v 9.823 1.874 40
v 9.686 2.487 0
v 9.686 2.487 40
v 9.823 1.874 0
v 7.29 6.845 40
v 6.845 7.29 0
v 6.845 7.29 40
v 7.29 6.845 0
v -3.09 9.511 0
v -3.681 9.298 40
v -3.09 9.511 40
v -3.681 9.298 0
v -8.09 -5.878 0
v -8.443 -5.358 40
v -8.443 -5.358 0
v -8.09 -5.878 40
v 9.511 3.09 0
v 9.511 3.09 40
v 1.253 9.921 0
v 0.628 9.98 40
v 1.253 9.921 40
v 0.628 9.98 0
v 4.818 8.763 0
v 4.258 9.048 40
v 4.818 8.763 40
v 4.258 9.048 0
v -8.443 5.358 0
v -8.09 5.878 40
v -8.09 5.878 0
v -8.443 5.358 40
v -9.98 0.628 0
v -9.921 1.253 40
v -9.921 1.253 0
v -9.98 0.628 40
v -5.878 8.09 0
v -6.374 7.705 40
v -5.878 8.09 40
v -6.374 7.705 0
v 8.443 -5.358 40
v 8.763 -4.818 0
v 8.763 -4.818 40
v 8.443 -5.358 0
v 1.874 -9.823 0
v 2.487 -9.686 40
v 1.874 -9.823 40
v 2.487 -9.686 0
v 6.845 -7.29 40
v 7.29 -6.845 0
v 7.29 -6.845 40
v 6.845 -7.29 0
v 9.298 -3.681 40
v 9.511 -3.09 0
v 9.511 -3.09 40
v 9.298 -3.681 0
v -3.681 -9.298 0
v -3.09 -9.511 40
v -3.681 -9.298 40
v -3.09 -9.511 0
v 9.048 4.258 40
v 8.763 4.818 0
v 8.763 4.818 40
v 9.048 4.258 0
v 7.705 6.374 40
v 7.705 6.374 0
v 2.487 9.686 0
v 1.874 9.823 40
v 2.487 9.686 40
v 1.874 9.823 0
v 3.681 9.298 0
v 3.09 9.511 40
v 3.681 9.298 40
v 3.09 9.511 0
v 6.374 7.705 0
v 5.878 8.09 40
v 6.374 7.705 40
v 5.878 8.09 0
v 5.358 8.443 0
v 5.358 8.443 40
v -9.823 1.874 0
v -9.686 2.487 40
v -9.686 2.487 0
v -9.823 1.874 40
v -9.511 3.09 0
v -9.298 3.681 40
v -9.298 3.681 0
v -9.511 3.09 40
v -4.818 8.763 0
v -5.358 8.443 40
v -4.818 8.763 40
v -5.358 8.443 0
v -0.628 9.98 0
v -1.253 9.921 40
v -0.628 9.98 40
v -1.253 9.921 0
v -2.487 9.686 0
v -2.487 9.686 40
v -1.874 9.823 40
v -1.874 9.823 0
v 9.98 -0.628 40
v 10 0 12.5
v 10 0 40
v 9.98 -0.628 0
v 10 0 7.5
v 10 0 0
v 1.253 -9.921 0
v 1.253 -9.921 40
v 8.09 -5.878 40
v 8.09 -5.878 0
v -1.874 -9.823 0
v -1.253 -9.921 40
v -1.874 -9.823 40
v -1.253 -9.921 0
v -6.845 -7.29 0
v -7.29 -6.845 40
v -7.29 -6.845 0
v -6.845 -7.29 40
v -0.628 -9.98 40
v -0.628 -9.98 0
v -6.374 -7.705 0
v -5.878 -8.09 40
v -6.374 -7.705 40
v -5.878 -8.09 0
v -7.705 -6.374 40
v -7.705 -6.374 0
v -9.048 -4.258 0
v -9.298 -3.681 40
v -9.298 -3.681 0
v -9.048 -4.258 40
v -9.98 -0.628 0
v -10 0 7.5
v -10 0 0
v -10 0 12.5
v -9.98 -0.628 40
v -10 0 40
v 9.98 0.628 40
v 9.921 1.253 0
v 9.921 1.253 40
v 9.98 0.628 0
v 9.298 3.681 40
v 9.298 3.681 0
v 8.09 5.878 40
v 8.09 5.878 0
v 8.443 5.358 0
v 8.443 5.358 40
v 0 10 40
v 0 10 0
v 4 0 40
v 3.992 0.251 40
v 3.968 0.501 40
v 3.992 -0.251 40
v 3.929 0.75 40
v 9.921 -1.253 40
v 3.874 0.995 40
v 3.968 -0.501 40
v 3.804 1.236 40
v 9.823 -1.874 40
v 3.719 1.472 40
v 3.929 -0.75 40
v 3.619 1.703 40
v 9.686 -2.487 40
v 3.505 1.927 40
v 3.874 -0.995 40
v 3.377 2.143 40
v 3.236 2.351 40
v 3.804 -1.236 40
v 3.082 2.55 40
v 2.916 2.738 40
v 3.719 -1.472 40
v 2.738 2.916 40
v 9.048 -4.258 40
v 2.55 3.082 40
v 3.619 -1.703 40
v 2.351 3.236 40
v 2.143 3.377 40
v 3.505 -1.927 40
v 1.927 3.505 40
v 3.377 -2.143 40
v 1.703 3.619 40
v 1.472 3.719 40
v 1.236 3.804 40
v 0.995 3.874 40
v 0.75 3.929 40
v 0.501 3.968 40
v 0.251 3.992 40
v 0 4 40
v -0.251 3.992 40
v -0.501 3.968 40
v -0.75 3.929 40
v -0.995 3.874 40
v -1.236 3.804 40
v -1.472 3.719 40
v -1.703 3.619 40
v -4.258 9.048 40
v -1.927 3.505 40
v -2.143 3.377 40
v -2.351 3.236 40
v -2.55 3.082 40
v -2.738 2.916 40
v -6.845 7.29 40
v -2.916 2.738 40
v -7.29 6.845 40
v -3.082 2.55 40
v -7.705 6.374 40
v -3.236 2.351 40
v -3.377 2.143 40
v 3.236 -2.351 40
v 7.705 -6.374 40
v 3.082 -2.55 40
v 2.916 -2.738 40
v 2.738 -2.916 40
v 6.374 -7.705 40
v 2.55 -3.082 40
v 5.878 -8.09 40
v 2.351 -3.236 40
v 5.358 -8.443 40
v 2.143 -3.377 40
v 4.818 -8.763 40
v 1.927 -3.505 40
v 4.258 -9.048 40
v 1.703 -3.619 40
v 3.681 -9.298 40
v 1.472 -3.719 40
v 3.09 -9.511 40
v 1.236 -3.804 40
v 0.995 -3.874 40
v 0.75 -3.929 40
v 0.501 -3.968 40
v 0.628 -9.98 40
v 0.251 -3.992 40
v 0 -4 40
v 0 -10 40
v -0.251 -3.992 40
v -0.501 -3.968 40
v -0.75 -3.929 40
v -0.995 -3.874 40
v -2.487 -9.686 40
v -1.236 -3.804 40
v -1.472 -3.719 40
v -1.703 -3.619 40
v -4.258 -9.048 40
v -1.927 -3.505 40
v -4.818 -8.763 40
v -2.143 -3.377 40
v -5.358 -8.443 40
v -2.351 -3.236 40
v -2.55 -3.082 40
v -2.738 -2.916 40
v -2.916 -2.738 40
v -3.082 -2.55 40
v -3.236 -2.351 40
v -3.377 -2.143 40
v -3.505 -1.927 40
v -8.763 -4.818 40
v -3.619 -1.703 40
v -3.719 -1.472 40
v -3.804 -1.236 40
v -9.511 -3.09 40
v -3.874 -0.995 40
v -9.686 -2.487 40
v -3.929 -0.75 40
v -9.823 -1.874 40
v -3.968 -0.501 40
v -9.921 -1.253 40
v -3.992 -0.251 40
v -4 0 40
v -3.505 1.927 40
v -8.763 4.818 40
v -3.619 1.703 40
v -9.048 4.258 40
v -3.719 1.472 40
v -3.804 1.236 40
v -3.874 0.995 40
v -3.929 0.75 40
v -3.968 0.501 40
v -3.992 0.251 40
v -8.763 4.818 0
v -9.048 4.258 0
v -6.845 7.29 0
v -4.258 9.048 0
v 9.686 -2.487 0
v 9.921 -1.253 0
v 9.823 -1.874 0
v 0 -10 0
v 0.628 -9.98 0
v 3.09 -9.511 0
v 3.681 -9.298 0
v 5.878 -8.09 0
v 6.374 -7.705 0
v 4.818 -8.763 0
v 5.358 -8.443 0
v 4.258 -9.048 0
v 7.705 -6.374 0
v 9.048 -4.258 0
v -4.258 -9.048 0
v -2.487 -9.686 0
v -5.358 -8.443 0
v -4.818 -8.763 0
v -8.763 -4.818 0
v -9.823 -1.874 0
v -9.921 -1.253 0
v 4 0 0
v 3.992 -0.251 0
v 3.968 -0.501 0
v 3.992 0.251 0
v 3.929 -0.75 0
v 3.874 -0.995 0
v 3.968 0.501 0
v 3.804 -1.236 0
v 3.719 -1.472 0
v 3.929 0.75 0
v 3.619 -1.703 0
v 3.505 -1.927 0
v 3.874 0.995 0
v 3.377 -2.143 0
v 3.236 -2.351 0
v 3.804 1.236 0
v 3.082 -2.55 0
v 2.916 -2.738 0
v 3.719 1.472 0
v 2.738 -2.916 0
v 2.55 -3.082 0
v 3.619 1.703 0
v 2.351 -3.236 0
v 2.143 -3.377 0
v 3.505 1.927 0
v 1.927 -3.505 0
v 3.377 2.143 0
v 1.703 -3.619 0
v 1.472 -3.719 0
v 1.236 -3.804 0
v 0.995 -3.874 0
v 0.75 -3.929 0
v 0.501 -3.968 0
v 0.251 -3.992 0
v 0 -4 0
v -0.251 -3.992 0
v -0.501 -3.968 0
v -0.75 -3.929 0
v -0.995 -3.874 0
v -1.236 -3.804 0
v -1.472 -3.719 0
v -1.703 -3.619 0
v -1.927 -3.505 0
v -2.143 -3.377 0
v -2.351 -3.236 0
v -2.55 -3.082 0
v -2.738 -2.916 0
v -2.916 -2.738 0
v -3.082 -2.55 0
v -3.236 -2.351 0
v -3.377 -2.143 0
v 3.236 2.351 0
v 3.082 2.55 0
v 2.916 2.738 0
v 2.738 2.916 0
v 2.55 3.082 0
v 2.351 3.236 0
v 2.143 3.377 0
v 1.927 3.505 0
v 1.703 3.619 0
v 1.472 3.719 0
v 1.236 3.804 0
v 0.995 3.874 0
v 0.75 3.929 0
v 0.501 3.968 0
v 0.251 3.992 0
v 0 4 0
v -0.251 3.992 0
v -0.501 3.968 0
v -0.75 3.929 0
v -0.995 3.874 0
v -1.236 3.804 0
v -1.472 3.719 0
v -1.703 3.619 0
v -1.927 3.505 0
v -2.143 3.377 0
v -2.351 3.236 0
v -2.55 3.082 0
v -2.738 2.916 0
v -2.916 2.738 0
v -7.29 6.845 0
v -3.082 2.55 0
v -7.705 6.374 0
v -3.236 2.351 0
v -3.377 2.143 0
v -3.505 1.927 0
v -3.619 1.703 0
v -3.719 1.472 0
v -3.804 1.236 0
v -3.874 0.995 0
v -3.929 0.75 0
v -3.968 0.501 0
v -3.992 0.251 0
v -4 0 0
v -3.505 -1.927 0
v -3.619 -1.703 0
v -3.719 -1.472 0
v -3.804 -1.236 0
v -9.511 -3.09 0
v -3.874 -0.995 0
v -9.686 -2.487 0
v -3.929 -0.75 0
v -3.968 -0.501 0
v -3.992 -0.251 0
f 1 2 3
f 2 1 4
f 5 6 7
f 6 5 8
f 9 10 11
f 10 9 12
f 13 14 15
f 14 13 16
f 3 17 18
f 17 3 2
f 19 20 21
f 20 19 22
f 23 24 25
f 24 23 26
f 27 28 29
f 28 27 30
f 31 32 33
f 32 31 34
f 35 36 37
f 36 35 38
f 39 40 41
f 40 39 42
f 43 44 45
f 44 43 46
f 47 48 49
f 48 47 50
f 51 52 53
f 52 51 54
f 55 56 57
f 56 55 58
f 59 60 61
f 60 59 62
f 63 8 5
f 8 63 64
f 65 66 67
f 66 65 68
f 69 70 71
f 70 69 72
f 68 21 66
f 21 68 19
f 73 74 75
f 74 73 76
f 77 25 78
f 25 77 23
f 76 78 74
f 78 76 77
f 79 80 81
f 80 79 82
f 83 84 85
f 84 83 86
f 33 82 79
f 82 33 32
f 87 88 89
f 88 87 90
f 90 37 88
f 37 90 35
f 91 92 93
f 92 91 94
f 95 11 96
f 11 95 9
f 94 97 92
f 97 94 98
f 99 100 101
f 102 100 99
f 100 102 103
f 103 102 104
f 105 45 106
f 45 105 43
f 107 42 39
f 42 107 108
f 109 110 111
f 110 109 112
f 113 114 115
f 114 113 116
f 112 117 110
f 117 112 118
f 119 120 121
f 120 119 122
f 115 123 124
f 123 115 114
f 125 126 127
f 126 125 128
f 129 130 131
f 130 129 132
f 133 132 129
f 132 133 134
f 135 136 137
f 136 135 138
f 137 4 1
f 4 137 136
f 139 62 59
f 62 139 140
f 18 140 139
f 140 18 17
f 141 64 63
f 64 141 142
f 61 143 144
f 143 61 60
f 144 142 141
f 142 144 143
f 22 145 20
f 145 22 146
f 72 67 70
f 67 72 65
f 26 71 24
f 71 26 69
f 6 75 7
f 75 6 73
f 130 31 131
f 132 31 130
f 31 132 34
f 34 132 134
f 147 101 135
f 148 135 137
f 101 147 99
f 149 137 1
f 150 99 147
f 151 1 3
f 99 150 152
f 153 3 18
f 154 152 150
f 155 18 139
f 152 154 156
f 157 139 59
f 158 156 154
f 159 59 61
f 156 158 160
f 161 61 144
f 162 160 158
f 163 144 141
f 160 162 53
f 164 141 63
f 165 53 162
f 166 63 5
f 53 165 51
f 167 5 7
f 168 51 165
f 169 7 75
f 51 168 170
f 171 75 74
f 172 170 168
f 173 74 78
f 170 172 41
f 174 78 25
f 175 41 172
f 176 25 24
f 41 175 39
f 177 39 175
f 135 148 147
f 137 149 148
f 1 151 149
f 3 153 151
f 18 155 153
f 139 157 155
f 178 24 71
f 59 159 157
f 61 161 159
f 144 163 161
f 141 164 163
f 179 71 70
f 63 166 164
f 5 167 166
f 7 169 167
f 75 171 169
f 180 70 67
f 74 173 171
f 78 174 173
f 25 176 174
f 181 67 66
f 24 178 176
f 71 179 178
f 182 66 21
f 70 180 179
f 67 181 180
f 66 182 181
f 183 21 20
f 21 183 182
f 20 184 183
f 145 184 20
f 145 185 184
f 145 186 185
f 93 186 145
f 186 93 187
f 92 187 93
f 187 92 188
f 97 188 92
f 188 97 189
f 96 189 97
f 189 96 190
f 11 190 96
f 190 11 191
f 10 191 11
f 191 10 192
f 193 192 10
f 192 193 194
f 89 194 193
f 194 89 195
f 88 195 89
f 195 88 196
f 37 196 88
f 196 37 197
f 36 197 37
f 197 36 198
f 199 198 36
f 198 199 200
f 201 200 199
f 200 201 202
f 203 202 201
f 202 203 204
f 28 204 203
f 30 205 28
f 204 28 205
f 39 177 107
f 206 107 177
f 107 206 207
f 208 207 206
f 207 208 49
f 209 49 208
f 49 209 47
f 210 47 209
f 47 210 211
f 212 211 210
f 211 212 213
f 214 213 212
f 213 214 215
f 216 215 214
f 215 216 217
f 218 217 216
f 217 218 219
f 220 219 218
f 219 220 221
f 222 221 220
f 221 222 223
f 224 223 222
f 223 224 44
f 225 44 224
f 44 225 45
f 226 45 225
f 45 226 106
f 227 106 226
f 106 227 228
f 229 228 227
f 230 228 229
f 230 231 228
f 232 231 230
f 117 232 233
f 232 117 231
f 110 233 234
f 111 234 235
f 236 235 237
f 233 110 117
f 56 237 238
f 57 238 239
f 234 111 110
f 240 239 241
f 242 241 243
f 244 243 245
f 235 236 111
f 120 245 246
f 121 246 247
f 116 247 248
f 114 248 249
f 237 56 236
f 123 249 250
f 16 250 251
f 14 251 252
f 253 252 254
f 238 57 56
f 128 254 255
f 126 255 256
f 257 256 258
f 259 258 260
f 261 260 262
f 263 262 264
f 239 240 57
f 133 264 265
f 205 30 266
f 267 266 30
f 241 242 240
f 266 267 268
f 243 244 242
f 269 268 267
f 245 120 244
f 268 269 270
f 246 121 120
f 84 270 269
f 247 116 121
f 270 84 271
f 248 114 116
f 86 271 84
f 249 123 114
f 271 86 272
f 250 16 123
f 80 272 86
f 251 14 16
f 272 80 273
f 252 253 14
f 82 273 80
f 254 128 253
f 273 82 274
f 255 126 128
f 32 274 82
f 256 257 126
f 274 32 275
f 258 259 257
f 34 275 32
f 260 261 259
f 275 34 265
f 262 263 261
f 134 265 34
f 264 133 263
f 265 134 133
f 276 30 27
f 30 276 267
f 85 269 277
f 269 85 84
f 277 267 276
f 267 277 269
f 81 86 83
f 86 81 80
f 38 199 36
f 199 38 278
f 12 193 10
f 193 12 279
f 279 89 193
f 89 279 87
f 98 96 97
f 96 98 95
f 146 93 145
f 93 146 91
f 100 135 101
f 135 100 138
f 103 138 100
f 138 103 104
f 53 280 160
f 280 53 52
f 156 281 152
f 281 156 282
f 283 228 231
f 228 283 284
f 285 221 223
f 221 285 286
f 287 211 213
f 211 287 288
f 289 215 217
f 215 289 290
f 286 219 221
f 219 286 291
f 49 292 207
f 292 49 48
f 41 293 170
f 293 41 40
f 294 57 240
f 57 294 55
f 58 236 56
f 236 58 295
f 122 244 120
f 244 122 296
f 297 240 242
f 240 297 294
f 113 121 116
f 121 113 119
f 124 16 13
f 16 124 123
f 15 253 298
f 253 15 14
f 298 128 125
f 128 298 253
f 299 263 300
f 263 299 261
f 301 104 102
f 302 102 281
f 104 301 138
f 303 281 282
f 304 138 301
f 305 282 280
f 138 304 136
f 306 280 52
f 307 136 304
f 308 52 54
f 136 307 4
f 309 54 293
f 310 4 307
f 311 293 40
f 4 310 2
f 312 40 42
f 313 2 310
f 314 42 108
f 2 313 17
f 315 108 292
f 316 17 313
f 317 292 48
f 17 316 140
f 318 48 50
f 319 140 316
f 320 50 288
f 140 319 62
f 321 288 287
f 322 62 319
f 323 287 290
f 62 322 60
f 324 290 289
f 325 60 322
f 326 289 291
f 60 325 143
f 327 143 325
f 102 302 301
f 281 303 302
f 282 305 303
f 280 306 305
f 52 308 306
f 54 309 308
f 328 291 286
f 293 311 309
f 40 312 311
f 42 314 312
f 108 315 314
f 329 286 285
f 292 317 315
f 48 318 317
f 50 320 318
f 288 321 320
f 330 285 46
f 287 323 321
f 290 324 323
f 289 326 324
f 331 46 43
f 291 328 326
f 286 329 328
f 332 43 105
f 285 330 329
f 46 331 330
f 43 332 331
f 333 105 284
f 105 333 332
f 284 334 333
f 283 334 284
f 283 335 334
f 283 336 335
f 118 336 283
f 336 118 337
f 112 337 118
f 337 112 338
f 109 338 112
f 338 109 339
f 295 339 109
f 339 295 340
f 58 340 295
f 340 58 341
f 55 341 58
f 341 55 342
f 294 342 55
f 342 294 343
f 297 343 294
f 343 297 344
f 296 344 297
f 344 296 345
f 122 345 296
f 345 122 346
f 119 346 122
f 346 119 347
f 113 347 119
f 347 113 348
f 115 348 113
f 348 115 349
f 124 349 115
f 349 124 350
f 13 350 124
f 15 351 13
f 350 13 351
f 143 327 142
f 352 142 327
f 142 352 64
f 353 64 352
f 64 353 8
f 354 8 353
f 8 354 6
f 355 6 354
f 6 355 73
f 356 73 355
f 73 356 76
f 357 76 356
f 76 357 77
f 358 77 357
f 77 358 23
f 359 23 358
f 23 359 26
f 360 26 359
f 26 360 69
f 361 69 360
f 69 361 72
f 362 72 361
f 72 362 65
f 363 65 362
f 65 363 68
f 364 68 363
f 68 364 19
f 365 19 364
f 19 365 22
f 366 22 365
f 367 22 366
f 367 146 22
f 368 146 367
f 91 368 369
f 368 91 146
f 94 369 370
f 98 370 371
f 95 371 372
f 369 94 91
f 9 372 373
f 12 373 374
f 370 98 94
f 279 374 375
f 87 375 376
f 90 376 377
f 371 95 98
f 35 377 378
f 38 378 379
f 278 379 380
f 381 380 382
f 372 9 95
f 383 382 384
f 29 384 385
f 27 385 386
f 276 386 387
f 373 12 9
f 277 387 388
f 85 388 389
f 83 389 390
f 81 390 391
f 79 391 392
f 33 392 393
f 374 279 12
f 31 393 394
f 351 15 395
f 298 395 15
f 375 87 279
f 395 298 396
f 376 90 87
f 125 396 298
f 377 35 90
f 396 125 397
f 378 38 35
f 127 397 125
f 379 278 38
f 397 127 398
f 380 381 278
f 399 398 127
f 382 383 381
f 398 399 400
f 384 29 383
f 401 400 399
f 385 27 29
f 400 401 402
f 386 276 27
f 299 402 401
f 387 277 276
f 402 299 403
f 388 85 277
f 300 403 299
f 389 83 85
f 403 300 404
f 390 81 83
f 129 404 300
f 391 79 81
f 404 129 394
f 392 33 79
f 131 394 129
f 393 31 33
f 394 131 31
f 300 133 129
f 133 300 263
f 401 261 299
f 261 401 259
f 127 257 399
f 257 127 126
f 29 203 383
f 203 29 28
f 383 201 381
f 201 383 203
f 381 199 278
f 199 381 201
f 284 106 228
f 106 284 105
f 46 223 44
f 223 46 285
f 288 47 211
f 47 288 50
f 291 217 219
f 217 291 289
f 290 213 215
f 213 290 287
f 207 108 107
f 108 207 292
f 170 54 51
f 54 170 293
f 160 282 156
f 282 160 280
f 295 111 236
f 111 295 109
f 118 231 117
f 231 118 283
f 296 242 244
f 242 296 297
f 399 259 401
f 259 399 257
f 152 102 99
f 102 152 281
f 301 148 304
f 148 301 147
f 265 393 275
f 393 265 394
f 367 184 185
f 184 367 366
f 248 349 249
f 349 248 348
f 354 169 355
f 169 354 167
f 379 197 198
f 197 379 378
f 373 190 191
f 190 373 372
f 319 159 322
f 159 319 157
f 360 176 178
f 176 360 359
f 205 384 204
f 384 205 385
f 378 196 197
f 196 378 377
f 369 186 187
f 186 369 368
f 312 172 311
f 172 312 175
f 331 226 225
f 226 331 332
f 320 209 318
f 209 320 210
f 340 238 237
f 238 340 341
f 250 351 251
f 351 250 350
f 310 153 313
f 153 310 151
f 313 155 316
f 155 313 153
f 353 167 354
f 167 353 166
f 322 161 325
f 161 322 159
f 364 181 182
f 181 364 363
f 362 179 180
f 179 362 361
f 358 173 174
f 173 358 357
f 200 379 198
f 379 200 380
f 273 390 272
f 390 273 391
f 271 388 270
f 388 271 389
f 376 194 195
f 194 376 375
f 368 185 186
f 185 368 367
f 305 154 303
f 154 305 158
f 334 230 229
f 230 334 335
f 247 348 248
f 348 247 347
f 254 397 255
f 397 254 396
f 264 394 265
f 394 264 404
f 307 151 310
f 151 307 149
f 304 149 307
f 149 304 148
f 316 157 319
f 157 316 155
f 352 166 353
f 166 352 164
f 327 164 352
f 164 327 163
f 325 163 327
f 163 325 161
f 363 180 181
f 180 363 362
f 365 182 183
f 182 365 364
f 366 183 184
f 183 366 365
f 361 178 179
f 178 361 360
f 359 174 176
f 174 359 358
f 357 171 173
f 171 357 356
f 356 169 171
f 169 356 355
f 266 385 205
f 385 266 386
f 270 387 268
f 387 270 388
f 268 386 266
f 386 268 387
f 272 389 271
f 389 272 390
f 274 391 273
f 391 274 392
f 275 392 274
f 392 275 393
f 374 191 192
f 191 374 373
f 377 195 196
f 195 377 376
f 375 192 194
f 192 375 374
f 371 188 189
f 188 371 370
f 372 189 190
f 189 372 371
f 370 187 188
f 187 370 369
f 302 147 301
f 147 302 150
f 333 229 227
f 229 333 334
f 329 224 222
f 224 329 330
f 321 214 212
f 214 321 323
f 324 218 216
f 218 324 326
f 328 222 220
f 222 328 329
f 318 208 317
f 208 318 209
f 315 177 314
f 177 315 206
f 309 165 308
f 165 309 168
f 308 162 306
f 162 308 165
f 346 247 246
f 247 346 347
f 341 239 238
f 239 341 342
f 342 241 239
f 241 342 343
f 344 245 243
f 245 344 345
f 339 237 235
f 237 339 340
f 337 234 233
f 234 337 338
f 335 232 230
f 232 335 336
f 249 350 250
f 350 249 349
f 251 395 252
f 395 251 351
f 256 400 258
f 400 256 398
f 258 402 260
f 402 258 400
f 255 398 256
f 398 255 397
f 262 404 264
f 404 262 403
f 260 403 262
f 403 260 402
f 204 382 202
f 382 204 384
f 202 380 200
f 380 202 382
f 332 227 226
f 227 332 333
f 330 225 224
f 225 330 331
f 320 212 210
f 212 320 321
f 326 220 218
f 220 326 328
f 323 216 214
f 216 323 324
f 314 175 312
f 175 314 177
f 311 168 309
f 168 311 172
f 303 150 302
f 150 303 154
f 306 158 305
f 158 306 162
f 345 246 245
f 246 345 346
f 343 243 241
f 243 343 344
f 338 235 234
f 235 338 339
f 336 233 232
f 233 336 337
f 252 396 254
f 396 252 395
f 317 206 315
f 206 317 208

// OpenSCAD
// Parameters
shaft_diameter = 20;
shaft_length = 40;
bore_diameter = 8;
side_hole_diameter = 5;
side_hole_offset = 10; // distance from center to side holes
side_hole_depth = shaft_diameter / 2 + 2; // ensure it goes through

module input_shaft() {
    difference() {
        // Main shaft body
        cylinder(h = shaft_length, d = shaft_diameter, $fn = 100);

        // Central bore
        translate([0, 0, 0])
            cylinder(h = shaft_length, d = bore_diameter, $fn = 100);

        // Side holes (2x)
        for (angle = [0, 180]) {
            rotate([0, 0, angle])
                translate([shaft_diameter/2, 0, shaft_length/2 - side_hole_offset])
                    rotate([0, 90, 0])
                        cylinder(h = side_hole_depth, d = side_hole_diameter, $fn = 60);
        }
    }
}

// Render the input shaft
input_shaft();
